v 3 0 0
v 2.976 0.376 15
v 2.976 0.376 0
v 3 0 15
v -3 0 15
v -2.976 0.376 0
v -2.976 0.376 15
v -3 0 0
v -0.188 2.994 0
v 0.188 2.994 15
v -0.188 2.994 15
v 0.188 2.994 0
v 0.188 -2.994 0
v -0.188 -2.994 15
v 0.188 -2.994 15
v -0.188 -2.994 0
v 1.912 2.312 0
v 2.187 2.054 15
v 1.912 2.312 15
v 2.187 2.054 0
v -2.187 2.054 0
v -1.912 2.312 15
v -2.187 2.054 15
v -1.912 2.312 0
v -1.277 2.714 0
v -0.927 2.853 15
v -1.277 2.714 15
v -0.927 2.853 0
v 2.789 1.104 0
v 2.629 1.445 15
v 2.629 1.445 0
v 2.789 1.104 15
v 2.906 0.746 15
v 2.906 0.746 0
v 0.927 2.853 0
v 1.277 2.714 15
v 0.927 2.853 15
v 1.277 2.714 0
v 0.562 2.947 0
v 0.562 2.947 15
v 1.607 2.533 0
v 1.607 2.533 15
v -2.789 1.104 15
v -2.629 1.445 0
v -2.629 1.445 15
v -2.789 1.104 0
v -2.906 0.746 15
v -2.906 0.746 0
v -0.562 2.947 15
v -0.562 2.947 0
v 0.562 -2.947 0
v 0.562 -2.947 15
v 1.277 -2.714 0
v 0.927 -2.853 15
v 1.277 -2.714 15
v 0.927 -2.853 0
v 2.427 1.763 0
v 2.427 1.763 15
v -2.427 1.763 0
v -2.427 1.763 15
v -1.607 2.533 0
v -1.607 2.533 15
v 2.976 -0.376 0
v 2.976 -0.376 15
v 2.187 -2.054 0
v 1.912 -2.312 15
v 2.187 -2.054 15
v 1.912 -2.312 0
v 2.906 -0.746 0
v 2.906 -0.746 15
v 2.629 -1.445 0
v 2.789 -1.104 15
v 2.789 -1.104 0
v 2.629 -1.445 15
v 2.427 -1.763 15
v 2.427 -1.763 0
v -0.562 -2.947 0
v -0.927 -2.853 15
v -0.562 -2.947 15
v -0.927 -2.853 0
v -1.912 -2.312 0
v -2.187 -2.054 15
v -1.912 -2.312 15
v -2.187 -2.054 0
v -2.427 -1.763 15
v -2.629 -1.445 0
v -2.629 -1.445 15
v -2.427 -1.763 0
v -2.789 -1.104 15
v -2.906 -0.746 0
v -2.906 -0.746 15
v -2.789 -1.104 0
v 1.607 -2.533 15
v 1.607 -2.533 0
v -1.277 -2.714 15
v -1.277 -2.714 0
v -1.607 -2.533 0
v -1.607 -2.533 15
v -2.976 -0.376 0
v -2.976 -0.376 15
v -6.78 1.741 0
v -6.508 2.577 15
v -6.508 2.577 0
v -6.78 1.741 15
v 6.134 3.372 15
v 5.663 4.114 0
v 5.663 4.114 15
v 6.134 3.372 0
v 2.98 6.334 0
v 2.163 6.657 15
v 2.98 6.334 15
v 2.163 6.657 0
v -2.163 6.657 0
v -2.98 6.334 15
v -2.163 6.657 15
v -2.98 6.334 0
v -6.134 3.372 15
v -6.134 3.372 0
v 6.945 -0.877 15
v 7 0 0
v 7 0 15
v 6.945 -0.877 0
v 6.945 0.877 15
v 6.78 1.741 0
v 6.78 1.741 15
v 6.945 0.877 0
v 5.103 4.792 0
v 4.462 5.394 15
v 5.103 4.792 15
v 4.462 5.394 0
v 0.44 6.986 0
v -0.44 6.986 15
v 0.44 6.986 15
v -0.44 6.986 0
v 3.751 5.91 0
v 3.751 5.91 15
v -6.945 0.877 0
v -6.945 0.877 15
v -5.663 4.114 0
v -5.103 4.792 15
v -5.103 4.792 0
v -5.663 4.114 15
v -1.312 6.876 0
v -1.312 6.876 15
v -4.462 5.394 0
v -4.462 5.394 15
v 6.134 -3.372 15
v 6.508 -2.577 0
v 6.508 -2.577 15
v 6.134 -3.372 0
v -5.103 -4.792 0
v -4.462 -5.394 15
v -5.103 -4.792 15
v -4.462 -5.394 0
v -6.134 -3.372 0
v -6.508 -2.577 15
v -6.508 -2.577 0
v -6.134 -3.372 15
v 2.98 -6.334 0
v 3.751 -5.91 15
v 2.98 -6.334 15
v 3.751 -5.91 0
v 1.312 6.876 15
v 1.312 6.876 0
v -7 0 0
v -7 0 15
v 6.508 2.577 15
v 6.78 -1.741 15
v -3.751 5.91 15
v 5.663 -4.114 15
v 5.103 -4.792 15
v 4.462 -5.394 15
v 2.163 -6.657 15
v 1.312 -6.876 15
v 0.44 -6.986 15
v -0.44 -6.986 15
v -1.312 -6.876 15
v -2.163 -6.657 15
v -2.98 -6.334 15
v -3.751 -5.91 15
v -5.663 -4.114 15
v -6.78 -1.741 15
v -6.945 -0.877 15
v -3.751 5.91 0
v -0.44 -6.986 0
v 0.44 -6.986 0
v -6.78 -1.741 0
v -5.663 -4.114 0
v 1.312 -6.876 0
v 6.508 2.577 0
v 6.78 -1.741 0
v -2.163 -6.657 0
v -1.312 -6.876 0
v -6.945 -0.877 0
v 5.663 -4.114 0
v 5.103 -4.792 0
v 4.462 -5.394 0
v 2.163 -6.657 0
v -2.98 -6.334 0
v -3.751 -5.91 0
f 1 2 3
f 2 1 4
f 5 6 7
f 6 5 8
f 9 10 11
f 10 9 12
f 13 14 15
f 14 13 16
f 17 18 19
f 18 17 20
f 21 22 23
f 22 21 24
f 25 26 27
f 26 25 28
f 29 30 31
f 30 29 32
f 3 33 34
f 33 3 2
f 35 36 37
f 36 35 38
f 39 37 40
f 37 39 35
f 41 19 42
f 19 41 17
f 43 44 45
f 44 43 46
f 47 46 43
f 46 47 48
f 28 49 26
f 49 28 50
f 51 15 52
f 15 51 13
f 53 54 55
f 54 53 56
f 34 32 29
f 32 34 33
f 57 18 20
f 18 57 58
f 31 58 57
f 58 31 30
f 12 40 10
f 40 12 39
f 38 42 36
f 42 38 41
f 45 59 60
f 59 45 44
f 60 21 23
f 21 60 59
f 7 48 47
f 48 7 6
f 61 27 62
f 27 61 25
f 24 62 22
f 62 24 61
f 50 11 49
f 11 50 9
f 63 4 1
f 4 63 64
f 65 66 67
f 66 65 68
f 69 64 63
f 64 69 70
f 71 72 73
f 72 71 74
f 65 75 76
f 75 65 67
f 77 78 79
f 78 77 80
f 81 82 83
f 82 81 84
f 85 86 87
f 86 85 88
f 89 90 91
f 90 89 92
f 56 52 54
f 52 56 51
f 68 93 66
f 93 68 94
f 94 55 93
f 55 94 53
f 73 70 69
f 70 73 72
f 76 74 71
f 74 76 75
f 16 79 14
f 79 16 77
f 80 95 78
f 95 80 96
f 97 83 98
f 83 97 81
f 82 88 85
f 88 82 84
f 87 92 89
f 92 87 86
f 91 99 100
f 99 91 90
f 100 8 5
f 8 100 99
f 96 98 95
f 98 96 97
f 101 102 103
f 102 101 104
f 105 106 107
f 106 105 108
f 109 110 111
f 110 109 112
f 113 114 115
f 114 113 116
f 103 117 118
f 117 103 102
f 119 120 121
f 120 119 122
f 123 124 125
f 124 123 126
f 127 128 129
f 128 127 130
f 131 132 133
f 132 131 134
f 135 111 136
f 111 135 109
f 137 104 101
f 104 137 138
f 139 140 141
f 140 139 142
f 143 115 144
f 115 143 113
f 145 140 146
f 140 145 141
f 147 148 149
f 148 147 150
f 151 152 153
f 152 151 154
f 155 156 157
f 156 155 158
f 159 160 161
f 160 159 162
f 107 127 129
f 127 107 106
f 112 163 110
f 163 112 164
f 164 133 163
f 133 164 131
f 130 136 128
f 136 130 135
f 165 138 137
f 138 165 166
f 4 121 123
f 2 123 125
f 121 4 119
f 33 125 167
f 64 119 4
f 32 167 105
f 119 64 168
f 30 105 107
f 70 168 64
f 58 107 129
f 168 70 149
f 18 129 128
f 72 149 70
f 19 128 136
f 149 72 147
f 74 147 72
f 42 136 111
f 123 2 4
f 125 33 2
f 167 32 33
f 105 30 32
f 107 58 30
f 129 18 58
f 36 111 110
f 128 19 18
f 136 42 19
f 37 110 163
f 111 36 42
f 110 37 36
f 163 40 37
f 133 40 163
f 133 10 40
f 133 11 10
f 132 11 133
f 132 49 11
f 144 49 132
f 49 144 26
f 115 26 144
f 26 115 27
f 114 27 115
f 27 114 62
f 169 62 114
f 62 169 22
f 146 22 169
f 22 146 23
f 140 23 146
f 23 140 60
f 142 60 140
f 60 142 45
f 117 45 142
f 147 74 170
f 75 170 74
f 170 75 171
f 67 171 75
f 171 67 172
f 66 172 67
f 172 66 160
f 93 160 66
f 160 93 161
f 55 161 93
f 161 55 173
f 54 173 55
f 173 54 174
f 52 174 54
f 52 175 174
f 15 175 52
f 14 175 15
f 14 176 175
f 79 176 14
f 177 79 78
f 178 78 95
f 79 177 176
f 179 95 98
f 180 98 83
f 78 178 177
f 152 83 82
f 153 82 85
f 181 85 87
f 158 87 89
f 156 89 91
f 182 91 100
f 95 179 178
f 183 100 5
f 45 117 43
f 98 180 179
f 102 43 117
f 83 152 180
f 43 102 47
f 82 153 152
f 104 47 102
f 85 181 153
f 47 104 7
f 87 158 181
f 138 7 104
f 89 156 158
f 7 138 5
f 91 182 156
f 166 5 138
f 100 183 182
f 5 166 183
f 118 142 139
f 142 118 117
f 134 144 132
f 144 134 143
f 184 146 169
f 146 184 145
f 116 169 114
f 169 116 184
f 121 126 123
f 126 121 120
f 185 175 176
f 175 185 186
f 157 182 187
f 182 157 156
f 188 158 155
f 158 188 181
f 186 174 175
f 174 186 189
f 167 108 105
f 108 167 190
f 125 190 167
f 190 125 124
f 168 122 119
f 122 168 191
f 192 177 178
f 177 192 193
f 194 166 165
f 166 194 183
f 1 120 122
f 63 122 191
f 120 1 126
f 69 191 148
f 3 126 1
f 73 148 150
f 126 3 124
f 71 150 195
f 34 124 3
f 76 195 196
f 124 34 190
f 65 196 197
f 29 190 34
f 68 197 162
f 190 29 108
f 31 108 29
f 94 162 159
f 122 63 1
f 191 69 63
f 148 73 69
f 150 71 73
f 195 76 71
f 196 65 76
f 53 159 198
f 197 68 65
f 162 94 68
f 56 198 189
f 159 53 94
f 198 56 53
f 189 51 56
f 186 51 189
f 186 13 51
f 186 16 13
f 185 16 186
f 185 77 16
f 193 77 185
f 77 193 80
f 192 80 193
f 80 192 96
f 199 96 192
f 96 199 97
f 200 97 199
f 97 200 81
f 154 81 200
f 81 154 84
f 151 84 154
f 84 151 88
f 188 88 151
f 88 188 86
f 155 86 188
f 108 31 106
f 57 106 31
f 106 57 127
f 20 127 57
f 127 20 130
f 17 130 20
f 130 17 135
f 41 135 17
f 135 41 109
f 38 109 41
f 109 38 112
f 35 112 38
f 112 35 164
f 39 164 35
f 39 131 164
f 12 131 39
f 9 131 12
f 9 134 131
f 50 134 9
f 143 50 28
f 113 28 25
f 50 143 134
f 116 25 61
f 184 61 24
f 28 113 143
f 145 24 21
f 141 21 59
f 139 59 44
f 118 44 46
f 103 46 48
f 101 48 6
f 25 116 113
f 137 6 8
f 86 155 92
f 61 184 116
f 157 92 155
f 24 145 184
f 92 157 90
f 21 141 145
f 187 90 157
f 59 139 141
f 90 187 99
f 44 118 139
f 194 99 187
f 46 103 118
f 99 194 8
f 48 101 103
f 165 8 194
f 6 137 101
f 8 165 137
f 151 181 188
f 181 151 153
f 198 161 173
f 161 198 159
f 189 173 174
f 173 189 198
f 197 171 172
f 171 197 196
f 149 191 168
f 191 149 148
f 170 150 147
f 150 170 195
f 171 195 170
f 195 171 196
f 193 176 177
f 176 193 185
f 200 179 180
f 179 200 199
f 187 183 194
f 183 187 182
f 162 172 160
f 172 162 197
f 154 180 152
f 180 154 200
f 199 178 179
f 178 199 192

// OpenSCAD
$fn = 50;


difference() {
	union() {
		translate(v = [0, 0, 0]) {
			rotate(a = [0, 0, 0]) {
				cylinder(h = 15, r = 7.0000000000);
			}
		}
	}
	union() {
		translate(v = [0.0000000000, 0.0000000000, 0]) {
			rotate(a = [0, 0, 0]) {
				translate(v = [0, 0, -50]) {
					rotate(a = [0, 0, 0]) {
						cylinder(h = 100, r = 3.0000000000);
					}
				}
			}
		}
		translate(v = [0.0000000000, 0.0000000000, 0]) {
			rotate(a = [0, 0, 0]) {
				translate(v = [0, 0, -50]) {
					rotate(a = [0, 0, 0]) {
						cylinder(h = 100, r = 1.5000000000);
					}
				}
			}
		}
	}
}
